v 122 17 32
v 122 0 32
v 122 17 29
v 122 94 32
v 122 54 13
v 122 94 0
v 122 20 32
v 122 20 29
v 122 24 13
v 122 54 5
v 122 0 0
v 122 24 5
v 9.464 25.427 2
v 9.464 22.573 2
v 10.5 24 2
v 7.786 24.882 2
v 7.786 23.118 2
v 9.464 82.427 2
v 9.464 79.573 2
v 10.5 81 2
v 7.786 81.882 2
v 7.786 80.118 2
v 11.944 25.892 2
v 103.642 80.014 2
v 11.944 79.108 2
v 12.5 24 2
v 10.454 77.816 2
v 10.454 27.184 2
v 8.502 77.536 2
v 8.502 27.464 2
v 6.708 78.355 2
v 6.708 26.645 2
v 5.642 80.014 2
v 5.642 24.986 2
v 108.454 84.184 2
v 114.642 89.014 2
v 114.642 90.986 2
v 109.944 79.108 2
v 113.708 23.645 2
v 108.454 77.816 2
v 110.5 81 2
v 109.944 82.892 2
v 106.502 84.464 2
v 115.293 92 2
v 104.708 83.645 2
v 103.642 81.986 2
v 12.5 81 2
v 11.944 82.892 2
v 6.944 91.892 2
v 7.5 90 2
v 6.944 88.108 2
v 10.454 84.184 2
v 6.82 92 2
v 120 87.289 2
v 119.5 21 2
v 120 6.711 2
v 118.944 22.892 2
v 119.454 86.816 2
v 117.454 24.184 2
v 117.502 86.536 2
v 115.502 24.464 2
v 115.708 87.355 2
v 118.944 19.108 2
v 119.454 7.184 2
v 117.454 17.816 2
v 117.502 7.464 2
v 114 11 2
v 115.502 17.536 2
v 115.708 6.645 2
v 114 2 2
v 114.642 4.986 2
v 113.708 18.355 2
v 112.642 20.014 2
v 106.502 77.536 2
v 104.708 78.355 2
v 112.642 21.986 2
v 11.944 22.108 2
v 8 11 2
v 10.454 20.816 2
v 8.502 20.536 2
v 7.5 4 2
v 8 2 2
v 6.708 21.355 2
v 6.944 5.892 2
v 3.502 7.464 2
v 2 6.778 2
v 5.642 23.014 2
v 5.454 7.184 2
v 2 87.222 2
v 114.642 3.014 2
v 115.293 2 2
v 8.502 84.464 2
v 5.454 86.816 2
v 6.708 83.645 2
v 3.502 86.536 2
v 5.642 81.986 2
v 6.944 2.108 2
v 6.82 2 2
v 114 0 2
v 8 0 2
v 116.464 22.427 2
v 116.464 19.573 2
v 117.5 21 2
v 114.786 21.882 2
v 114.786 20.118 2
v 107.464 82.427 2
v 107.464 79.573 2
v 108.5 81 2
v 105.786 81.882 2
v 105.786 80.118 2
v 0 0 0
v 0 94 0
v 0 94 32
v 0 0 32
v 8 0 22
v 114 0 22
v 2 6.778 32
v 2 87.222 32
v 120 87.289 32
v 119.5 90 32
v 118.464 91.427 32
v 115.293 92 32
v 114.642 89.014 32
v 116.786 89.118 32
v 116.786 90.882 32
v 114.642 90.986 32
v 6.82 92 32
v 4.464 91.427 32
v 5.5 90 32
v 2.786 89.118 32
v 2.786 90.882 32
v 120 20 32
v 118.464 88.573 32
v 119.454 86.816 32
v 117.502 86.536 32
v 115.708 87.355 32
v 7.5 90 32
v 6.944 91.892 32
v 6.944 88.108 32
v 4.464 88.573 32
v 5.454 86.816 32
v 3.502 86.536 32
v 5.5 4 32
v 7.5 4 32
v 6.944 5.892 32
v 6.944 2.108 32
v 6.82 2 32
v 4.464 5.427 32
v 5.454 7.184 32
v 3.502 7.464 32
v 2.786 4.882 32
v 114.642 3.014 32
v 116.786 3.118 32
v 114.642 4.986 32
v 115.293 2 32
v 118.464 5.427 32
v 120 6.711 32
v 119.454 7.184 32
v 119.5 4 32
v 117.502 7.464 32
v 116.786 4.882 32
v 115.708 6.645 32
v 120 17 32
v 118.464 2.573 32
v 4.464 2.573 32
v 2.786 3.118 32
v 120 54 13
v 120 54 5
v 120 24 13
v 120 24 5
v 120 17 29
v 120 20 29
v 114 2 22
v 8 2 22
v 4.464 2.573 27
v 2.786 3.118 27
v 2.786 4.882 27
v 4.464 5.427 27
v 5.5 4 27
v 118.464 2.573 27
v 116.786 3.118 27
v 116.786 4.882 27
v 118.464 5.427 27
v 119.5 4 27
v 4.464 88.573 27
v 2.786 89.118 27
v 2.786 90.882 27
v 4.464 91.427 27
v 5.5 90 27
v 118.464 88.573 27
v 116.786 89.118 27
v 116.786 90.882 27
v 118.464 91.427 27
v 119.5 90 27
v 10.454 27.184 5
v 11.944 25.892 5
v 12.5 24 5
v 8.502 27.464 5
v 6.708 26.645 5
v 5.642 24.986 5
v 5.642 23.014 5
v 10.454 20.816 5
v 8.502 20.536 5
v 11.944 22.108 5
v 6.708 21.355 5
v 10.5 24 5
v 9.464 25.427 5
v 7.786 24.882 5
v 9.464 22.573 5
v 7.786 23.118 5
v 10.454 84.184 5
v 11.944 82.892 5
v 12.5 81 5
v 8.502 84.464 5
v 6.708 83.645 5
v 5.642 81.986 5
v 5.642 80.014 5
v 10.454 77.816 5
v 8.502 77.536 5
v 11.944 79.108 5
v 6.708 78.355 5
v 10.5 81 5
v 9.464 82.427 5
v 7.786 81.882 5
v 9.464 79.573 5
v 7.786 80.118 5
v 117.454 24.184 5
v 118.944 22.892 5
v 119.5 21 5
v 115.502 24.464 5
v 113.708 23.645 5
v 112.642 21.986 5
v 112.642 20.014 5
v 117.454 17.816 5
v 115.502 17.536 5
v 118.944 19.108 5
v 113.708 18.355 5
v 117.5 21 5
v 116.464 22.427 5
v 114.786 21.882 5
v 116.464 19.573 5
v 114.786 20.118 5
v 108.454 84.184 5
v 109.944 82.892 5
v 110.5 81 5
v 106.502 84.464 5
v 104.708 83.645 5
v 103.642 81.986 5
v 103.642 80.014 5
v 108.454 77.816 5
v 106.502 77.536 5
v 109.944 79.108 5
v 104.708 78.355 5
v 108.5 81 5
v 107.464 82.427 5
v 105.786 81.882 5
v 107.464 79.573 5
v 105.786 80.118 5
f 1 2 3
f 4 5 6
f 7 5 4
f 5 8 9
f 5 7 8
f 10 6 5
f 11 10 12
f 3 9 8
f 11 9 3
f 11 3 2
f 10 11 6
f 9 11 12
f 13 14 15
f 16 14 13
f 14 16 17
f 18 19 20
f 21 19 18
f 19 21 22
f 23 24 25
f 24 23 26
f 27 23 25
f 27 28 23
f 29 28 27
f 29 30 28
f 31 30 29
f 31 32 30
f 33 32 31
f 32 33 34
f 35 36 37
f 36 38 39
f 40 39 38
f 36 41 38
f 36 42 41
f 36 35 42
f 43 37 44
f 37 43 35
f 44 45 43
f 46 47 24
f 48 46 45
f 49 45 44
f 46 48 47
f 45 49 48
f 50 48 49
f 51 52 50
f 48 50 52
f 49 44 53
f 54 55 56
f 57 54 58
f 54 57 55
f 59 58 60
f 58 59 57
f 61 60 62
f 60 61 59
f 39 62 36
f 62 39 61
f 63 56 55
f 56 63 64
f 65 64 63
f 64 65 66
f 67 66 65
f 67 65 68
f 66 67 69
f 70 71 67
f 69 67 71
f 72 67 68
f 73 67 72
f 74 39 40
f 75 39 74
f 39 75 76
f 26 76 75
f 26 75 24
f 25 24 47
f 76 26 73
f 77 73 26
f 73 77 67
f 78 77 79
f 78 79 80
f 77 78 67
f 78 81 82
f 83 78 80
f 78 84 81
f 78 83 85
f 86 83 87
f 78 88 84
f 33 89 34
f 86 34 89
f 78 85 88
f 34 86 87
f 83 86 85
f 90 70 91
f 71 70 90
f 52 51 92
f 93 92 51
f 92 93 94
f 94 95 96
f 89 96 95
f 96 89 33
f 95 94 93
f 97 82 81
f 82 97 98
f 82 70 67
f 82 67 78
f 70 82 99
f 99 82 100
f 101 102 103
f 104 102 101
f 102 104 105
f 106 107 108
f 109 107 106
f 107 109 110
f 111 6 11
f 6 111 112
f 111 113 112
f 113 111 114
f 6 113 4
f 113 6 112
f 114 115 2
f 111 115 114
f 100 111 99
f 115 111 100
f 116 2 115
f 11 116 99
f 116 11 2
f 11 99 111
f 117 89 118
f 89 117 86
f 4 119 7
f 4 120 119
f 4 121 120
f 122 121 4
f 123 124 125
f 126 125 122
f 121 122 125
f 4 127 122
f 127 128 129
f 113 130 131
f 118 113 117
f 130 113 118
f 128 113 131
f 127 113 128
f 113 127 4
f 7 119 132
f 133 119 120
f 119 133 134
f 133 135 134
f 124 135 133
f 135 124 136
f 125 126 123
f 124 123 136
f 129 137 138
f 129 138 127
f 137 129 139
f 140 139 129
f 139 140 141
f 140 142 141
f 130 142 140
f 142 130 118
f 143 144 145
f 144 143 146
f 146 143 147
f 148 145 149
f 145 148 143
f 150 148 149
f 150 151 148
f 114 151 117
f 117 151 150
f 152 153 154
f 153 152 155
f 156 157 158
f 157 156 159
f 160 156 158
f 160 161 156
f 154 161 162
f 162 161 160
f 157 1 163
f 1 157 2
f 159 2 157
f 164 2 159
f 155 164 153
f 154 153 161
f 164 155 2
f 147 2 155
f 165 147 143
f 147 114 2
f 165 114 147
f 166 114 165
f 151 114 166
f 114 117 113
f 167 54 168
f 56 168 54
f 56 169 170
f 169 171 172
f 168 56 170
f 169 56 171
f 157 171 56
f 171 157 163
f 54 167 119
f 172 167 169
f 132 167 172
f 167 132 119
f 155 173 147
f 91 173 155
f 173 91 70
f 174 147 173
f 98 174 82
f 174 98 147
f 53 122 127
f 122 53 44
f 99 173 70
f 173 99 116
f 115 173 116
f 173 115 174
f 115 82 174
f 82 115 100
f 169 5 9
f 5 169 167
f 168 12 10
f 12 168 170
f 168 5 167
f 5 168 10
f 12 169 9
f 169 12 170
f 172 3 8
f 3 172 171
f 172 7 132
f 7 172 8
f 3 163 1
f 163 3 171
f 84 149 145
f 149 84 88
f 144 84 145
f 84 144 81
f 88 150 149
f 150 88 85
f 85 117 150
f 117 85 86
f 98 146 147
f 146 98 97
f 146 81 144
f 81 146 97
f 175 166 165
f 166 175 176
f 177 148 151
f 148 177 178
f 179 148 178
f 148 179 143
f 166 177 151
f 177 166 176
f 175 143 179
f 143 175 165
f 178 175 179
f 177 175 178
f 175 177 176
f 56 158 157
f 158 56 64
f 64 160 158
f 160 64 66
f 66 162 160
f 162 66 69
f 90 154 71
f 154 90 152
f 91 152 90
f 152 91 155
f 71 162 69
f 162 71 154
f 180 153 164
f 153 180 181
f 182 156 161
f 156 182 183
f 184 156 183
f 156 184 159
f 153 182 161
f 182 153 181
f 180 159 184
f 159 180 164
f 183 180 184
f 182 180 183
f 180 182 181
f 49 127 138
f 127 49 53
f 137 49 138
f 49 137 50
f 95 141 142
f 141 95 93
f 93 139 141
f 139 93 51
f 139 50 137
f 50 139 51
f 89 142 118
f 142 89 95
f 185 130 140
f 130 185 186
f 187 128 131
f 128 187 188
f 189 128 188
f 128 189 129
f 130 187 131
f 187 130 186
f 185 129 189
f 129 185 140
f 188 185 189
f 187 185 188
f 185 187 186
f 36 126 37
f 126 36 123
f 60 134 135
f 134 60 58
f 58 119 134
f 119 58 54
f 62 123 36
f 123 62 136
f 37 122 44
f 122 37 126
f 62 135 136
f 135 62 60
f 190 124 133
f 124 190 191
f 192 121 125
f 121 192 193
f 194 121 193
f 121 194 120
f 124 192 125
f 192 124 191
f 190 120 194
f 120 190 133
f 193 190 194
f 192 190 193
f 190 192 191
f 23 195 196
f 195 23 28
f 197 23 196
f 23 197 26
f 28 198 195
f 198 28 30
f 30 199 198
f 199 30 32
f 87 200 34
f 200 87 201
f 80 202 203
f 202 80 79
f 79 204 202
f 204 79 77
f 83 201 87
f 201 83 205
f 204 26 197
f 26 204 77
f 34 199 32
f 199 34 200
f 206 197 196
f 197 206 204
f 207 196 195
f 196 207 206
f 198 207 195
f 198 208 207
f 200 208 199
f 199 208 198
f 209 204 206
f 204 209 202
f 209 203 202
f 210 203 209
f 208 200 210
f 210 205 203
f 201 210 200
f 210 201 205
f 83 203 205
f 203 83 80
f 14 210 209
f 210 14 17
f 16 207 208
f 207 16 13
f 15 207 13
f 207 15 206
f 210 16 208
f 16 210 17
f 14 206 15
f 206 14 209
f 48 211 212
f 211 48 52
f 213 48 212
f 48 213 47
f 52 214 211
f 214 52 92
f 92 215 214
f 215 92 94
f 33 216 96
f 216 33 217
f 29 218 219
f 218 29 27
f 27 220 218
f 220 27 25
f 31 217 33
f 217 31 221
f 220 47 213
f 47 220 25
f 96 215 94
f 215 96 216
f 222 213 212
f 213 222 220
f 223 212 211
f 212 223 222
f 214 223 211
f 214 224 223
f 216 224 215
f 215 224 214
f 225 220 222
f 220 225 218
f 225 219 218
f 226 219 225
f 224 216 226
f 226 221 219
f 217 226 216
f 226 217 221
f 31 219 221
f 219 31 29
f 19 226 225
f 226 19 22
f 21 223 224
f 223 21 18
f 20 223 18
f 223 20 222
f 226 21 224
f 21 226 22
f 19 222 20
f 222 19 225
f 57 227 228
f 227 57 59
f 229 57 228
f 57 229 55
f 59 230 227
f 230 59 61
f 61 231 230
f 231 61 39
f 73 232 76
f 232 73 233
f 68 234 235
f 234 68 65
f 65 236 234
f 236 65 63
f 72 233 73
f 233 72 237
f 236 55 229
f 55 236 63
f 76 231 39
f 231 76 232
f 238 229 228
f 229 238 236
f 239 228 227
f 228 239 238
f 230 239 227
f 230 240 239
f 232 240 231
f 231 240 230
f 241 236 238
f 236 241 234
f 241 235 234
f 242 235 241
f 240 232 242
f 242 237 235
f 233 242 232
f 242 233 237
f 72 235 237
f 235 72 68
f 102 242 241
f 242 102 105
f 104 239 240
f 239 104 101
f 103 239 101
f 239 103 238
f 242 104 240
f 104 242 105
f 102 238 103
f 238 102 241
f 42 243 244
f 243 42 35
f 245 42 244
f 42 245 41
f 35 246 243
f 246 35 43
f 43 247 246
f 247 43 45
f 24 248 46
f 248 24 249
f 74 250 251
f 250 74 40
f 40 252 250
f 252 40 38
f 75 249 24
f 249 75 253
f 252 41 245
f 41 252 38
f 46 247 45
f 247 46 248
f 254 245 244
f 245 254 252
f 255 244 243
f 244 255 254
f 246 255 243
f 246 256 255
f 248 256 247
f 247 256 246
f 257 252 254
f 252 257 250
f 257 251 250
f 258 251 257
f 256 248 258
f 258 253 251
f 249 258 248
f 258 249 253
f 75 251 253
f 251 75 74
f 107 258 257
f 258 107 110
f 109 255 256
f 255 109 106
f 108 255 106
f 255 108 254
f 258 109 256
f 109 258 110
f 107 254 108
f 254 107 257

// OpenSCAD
length=118;
width=90;
height=30;
thickness=2;
airflowcount=0;
screwint=3;
screwext=2*thickness+screwint;
delta=5;

module lowercase(length,width,height,thickness){
    cube([length+2*thickness,width+2*thickness,thickness]);
    cube([thickness,width+2*thickness,height+thickness]);
    translate([length+thickness,0,0]) cube([thickness,width+2*thickness,height+thickness]);
    cube([length+2*thickness,thickness,height+thickness]);
    translate([0,width+thickness,0]) cube([length+2*thickness,thickness,height+thickness]);
}

module airflow(xsize,ysize,xpos,ypos,thickness,count,delta){
    flowwidth=xsize/(2*count-1);
    for(i=[0:1:count-1]){
        translate([xpos+2*i*        flowwidth,ypos,-delta]) cube([flowwidth,ysize,thickness+2*delta]);
    }
}

module xcutout(xpos,zpos,xsize, zsize,ypos,width,delta){
    translate([xpos+thickness,ypos+thickness-delta,zpos+thickness]) cube([xsize,width+thickness+2*delta,zsize]);
}

module ycutout(ypos,zpos,ysize, zsize,xpos,width,delta){
    translate([xpos+thickness-delta,ypos+thickness,zpos+thickness]) cube([width+thickness+2*delta,ysize,zsize]);
}

module screw(xpos,ypos,height,ediameter,idiameter,delta){
    difference(){
        translate([xpos+thickness,ypos+thickness,thickness]) cylinder(h=height,d=ediameter);
        translate([xpos+thickness,ypos+thickness,height+thickness-delta]) cylinder(h=2*delta,d=idiameter);
    }
}

difference(){
    lowercase(length,width,height,thickness);
    if (airflowcount!=0){
        airflow(40,30,50,20,        thickness,airflowcount,delta);
    }
    xcutout(6,0,106,20,0,thickness,delta);
    ycutout(22,3,30,8,length,thickness,delta);
    ycutout(15,height-3,3,3,length,thickness,delta);
}
screw(screwint-1,screwint-1,height,screwext,screwint,delta);
screw(length-screwint+1,screwint-1,height,screwext,screwint,delta);
screw(screwint-1,width-screwint+1,height,screwext,screwint,delta);
screw(length-screwint+1,width-screwint+1,height,screwext,screwint,delta);
screw(7,22,3,screwext,screwint,delta);
screw(7,79,3,screwext,screwint,delta);
screw(114,19,3,screwext,screwint,delta);
screw(105,79,3,screwext,screwint,delta);
